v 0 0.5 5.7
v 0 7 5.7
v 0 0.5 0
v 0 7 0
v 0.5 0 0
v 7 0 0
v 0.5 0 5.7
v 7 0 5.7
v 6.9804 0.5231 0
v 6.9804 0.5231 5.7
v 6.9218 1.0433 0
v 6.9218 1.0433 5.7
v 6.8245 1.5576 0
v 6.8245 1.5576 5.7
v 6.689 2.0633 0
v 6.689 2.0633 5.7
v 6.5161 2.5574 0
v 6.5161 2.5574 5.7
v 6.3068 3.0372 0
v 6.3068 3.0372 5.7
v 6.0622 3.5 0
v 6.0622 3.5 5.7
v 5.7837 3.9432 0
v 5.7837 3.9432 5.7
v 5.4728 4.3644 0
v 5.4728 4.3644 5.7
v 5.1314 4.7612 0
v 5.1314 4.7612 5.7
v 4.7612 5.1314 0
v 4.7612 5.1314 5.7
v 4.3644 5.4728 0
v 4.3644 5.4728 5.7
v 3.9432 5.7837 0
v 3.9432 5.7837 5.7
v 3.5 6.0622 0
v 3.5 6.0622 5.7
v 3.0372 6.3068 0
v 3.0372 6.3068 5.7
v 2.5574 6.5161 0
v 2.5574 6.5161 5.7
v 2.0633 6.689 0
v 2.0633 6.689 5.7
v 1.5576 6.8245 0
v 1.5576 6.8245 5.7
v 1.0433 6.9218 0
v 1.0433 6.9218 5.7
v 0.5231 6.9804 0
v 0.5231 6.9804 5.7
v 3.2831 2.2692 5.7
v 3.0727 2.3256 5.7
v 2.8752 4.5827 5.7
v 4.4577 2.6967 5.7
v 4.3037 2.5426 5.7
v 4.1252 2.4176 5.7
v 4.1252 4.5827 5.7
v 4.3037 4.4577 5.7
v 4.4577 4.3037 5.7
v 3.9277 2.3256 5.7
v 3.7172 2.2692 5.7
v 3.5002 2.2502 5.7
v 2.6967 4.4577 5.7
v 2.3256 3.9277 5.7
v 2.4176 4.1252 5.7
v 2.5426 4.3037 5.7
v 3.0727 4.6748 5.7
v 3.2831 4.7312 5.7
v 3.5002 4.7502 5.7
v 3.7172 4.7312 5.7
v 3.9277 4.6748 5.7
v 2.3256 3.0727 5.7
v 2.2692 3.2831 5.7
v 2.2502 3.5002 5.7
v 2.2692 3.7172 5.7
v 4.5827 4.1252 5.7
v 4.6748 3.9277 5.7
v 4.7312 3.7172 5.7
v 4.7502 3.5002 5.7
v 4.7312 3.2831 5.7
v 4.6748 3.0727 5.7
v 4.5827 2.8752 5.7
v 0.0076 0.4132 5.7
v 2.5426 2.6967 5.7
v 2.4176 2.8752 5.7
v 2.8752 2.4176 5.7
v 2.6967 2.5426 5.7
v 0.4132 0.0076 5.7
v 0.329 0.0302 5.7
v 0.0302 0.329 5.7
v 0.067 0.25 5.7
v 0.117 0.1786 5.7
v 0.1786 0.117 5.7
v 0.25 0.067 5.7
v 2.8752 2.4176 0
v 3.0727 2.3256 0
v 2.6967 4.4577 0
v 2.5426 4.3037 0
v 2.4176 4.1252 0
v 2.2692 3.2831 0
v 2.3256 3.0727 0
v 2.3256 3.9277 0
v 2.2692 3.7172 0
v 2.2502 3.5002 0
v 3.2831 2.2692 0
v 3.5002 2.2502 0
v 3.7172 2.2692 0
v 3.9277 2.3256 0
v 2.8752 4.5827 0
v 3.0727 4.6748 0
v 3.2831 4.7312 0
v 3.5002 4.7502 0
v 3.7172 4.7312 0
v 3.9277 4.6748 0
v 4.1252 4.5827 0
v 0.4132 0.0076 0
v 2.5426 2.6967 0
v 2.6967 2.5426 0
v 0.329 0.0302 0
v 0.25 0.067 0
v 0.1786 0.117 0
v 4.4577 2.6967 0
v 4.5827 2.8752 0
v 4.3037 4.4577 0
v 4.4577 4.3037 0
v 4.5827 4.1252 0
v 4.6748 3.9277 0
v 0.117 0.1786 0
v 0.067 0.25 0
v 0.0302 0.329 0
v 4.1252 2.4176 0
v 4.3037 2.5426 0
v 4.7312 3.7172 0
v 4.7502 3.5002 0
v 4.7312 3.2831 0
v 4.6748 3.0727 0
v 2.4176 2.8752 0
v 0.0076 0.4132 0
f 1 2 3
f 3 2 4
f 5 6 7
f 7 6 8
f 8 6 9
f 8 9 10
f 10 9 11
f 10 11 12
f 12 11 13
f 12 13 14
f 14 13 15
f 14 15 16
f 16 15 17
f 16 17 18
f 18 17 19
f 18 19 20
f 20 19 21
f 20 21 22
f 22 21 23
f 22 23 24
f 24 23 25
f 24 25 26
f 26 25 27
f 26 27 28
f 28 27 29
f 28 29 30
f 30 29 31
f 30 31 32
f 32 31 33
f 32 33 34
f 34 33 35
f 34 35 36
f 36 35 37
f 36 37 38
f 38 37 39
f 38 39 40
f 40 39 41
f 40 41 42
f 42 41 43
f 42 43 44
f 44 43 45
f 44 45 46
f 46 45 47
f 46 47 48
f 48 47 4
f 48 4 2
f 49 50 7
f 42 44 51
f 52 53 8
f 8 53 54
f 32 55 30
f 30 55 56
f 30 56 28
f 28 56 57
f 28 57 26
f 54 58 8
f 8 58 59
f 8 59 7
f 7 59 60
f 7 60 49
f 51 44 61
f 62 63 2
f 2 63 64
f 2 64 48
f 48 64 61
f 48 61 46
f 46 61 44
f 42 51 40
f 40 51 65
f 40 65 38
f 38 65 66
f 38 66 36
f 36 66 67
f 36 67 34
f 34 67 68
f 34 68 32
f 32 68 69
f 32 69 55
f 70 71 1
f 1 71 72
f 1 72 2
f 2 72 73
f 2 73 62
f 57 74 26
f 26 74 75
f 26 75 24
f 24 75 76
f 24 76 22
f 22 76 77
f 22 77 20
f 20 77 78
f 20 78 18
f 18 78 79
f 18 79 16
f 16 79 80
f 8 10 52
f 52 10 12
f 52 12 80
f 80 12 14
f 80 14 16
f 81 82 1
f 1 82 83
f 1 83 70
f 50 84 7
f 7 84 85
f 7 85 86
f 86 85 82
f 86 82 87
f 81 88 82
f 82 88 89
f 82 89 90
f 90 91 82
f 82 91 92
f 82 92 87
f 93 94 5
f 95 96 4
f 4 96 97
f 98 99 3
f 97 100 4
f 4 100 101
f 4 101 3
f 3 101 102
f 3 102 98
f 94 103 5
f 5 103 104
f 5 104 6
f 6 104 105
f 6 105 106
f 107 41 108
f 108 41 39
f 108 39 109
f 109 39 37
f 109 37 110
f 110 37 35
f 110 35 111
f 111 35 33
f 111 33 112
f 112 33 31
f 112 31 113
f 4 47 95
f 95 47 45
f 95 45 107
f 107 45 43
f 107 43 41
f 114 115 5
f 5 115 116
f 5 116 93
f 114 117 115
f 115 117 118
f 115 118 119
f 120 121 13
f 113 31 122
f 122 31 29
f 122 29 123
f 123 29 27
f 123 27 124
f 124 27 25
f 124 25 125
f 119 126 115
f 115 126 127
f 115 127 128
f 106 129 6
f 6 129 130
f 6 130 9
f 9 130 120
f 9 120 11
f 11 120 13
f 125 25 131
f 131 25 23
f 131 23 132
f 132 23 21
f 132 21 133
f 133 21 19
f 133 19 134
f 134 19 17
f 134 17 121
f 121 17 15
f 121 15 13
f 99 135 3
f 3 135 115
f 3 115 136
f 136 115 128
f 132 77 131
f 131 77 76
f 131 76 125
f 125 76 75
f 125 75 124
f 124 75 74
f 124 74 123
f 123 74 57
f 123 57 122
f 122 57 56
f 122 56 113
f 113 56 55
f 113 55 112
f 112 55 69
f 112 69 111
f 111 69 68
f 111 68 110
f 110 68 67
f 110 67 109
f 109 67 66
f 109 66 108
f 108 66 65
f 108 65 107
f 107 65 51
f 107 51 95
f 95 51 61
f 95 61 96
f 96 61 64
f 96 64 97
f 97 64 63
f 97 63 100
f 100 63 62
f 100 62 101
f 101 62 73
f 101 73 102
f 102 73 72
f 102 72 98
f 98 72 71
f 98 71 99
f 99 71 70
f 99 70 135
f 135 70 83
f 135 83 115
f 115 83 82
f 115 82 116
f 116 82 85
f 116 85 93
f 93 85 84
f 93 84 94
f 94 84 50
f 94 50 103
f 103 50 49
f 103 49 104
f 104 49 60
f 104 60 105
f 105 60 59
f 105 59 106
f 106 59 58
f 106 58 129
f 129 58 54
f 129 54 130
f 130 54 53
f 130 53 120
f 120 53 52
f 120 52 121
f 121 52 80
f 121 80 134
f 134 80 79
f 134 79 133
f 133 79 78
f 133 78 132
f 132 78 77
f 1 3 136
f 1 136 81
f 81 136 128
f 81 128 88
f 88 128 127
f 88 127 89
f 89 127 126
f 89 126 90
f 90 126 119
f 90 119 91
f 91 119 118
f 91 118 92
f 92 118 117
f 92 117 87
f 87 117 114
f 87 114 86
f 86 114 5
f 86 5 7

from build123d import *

# Parameters (mm, degrees)
P_IDAT_VYSUNUT_M1_DEPTH  = 5.7
SKICA2_R                 = 1.25
ODEBRAT_VYSUNUT_M1_DEPTH = 6.7
ZAOBLIT1_R               = 0.5


with BuildPart() as part:
    # Skica1 → Přidat vysunutím1 (new body)
    with BuildSketch(Plane.XY):
        with BuildLine():
            Line((0, 0), (7, 0))
            ThreePointArc((7, 0), (4.949747468, 4.949747468), (0, 7))
            Line((0, 7), (0, 0))
        make_face()
    extrude(amount=P_IDAT_VYSUNUT_M1_DEPTH)

    # Skica2 → Odebrat vysunutím1 (cut, through all)
    with BuildSketch(Plane.XY.offset(5.7)):
        with Locations((3.500178567, 3.500178567)):
            Circle(SKICA2_R)
    extrude(amount=-ODEBRAT_VYSUNUT_M1_DEPTH, mode=Mode.SUBTRACT)

    # Zaoblit1
    zaoblit1_edges = [part.edges().sort_by_distance(p)[0] for p in [
        (0, 0, 2.85),
    ]]
    fillet(zaoblit1_edges, radius=ZAOBLIT1_R)


solid = part.part
